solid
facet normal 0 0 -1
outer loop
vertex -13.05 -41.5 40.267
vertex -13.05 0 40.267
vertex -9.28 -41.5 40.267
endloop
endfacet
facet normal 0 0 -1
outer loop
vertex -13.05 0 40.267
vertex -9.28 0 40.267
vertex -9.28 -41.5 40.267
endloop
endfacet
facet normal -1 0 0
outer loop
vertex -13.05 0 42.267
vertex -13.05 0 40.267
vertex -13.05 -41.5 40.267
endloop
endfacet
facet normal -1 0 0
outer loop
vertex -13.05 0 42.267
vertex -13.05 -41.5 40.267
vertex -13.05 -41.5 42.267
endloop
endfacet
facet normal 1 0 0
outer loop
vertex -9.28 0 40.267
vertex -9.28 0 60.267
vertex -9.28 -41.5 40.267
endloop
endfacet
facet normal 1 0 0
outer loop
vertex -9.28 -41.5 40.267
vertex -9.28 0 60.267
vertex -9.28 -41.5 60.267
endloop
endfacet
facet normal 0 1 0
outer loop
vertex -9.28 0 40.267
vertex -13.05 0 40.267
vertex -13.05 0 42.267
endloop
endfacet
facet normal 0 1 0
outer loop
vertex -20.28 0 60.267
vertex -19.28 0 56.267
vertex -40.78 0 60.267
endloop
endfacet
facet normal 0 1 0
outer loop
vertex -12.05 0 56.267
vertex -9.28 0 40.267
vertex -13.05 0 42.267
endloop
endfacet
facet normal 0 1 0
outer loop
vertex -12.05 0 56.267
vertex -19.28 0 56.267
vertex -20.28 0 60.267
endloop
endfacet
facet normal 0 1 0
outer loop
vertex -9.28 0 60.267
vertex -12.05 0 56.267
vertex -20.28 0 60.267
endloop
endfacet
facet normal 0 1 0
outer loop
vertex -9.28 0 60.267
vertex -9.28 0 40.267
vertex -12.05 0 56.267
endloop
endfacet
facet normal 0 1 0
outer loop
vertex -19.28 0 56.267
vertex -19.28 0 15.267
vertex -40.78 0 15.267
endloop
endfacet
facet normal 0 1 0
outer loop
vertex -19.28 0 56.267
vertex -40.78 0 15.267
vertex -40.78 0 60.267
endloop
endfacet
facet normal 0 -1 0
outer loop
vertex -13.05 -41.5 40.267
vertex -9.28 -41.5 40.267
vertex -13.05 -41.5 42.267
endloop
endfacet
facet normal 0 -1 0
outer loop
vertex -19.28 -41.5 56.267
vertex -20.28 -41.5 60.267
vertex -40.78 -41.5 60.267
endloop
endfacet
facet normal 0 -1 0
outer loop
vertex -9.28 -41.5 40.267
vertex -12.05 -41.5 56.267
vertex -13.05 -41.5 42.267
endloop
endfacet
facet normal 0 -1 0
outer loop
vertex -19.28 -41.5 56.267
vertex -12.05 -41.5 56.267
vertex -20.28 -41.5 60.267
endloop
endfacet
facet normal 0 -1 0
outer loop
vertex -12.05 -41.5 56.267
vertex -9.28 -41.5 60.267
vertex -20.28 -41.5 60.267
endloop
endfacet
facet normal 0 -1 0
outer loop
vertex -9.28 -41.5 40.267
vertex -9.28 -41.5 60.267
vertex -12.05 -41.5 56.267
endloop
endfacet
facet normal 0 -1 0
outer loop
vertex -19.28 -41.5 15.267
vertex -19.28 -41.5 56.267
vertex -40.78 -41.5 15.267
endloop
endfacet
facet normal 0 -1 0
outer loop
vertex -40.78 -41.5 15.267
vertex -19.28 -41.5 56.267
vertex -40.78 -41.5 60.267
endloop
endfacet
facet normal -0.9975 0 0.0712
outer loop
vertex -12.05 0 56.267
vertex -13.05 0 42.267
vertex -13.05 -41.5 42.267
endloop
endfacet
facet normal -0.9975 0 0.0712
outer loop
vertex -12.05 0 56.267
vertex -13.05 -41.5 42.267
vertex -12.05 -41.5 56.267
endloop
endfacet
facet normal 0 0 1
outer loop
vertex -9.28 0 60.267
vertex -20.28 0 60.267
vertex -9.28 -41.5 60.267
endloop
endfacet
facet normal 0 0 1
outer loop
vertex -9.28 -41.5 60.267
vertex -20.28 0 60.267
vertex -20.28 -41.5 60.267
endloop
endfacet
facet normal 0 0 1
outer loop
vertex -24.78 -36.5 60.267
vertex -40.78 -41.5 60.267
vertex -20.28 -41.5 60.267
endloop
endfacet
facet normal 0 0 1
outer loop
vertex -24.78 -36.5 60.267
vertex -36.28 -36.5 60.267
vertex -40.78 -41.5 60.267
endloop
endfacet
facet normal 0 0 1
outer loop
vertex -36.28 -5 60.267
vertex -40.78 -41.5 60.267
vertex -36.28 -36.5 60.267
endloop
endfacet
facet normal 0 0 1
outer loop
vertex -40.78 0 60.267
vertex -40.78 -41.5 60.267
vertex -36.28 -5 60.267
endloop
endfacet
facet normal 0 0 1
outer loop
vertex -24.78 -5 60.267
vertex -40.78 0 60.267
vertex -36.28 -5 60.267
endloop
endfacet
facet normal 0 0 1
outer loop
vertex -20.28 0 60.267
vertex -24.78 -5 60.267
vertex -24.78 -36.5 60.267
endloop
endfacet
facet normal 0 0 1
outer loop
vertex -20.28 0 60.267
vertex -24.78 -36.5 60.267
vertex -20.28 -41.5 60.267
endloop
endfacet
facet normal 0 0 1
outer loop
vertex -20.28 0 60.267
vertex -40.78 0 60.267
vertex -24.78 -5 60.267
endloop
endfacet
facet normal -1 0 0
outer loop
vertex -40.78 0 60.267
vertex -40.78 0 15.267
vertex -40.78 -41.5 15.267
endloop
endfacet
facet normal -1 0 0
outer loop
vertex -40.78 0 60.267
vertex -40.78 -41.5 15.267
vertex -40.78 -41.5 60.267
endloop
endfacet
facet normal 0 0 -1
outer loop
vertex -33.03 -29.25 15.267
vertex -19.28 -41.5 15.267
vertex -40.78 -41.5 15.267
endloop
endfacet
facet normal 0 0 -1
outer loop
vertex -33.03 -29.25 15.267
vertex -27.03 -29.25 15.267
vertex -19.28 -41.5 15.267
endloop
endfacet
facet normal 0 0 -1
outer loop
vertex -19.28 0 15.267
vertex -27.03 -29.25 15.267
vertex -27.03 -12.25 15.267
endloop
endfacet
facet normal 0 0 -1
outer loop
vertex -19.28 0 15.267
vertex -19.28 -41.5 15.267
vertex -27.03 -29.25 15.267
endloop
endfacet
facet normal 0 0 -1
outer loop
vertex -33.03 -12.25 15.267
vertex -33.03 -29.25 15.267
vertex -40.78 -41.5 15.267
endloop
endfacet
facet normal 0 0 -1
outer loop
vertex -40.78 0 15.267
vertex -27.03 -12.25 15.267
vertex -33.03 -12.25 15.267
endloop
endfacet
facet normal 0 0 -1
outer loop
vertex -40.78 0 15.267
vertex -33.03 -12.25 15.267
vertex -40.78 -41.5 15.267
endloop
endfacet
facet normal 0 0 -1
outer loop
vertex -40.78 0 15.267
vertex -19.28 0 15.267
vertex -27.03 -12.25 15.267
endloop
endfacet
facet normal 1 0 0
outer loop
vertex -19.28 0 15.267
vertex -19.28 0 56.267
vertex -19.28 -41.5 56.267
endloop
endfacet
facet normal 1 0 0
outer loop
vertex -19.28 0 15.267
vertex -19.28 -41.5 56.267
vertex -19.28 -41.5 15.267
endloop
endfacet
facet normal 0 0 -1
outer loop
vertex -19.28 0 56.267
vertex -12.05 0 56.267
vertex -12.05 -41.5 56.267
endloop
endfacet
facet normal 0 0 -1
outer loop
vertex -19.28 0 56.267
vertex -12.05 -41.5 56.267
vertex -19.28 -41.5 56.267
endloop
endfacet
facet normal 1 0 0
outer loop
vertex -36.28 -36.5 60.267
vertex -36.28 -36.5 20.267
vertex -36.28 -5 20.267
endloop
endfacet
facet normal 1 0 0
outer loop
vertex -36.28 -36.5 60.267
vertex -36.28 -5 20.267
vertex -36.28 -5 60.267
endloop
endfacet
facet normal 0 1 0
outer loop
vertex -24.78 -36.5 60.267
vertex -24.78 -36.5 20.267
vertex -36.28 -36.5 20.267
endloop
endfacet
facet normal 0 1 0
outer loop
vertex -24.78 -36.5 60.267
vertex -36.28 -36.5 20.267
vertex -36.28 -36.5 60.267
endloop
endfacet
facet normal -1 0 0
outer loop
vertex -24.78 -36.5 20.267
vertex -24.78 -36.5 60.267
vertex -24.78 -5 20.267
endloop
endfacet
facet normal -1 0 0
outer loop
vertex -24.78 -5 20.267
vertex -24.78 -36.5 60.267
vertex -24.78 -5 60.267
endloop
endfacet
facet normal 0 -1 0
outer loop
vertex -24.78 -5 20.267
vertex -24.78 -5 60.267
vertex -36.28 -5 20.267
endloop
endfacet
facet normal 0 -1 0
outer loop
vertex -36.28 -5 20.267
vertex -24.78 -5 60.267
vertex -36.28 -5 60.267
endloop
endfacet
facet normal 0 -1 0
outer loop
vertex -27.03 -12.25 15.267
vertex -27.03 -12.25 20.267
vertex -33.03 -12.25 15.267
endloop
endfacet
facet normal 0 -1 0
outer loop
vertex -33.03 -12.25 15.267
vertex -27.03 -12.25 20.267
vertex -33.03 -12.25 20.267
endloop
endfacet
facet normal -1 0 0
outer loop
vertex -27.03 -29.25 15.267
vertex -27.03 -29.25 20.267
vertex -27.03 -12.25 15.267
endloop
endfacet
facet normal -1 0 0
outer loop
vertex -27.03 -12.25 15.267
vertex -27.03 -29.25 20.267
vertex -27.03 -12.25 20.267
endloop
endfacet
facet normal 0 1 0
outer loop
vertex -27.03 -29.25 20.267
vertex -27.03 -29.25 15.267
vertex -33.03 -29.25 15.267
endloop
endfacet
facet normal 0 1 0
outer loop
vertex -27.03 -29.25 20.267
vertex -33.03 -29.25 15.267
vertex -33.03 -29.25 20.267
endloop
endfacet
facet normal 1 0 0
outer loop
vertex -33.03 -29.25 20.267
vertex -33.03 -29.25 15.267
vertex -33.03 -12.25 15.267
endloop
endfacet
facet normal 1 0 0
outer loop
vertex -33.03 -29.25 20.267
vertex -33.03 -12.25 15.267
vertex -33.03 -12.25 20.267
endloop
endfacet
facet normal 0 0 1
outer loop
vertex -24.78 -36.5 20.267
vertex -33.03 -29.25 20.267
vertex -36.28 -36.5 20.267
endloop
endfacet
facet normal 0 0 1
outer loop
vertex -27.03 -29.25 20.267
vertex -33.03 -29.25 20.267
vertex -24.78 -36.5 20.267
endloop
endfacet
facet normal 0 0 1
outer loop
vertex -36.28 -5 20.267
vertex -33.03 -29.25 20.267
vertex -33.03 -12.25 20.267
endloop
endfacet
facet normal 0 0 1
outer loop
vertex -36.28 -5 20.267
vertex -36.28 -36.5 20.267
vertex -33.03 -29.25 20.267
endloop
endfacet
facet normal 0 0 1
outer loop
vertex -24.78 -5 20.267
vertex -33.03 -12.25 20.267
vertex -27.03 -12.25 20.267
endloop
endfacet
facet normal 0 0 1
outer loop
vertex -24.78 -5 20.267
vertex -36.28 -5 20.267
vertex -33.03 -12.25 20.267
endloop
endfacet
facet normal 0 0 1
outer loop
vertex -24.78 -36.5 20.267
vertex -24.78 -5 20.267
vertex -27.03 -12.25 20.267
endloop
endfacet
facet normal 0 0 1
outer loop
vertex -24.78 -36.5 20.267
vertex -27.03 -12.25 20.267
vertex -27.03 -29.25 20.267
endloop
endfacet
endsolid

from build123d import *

# Parameters (mm, degrees)
BOX001_W      = 6
BOX001_H      = 17
BOX001_DEPTH  = 5
BOX_W         = 11.5
BOX_H         = 31.5
BOX_DEPTH     = 40
EXTRUDE_DEPTH = 41.5


with BuildPart() as cube001:
    # Box001 → Box001 (new body)
    with BuildSketch(Plane(origin=(-33.030017, -29.25, 15.266888), x_dir=(1, 0, 0), z_dir=(0, 0, 1))):
        with Locations((3, 8.5)):
            Rectangle(BOX001_W, BOX001_H)
    extrude(amount=BOX001_DEPTH)


with BuildPart() as cube:
    # Box → Box (new body)
    with BuildSketch(Plane(origin=(-36.280017, -36.5, 20.266888), x_dir=(1, 0, 0), z_dir=(0, 0, 1))):
        with Locations((5.75, 15.75)):
            Rectangle(BOX_W, BOX_H)
    extrude(amount=BOX_DEPTH)


with BuildPart() as cut001:
    # Sketch → Extrude (new body)
    with BuildSketch(Plane.XZ):
        Polygon((-13.050017, 40.266888), (-9.280017, 40.266888), (-9.280017, 60.266888), (-20.280017, 60.266888), (-40.780017, 60.266888), (-40.780017, 15.266888), (-19.280017, 15.266888), (-19.280017, 56.266888), (-12.050017, 56.266888), (-13.050017, 42.266888), align=None)
    extrude(amount=EXTRUDE_DEPTH)

    # Cut: cut Cube
    add(cube.part, mode=Mode.SUBTRACT)

    # Cut001: cut Cube001
    add(cube001.part, mode=Mode.SUBTRACT)


solid = cut001.part
